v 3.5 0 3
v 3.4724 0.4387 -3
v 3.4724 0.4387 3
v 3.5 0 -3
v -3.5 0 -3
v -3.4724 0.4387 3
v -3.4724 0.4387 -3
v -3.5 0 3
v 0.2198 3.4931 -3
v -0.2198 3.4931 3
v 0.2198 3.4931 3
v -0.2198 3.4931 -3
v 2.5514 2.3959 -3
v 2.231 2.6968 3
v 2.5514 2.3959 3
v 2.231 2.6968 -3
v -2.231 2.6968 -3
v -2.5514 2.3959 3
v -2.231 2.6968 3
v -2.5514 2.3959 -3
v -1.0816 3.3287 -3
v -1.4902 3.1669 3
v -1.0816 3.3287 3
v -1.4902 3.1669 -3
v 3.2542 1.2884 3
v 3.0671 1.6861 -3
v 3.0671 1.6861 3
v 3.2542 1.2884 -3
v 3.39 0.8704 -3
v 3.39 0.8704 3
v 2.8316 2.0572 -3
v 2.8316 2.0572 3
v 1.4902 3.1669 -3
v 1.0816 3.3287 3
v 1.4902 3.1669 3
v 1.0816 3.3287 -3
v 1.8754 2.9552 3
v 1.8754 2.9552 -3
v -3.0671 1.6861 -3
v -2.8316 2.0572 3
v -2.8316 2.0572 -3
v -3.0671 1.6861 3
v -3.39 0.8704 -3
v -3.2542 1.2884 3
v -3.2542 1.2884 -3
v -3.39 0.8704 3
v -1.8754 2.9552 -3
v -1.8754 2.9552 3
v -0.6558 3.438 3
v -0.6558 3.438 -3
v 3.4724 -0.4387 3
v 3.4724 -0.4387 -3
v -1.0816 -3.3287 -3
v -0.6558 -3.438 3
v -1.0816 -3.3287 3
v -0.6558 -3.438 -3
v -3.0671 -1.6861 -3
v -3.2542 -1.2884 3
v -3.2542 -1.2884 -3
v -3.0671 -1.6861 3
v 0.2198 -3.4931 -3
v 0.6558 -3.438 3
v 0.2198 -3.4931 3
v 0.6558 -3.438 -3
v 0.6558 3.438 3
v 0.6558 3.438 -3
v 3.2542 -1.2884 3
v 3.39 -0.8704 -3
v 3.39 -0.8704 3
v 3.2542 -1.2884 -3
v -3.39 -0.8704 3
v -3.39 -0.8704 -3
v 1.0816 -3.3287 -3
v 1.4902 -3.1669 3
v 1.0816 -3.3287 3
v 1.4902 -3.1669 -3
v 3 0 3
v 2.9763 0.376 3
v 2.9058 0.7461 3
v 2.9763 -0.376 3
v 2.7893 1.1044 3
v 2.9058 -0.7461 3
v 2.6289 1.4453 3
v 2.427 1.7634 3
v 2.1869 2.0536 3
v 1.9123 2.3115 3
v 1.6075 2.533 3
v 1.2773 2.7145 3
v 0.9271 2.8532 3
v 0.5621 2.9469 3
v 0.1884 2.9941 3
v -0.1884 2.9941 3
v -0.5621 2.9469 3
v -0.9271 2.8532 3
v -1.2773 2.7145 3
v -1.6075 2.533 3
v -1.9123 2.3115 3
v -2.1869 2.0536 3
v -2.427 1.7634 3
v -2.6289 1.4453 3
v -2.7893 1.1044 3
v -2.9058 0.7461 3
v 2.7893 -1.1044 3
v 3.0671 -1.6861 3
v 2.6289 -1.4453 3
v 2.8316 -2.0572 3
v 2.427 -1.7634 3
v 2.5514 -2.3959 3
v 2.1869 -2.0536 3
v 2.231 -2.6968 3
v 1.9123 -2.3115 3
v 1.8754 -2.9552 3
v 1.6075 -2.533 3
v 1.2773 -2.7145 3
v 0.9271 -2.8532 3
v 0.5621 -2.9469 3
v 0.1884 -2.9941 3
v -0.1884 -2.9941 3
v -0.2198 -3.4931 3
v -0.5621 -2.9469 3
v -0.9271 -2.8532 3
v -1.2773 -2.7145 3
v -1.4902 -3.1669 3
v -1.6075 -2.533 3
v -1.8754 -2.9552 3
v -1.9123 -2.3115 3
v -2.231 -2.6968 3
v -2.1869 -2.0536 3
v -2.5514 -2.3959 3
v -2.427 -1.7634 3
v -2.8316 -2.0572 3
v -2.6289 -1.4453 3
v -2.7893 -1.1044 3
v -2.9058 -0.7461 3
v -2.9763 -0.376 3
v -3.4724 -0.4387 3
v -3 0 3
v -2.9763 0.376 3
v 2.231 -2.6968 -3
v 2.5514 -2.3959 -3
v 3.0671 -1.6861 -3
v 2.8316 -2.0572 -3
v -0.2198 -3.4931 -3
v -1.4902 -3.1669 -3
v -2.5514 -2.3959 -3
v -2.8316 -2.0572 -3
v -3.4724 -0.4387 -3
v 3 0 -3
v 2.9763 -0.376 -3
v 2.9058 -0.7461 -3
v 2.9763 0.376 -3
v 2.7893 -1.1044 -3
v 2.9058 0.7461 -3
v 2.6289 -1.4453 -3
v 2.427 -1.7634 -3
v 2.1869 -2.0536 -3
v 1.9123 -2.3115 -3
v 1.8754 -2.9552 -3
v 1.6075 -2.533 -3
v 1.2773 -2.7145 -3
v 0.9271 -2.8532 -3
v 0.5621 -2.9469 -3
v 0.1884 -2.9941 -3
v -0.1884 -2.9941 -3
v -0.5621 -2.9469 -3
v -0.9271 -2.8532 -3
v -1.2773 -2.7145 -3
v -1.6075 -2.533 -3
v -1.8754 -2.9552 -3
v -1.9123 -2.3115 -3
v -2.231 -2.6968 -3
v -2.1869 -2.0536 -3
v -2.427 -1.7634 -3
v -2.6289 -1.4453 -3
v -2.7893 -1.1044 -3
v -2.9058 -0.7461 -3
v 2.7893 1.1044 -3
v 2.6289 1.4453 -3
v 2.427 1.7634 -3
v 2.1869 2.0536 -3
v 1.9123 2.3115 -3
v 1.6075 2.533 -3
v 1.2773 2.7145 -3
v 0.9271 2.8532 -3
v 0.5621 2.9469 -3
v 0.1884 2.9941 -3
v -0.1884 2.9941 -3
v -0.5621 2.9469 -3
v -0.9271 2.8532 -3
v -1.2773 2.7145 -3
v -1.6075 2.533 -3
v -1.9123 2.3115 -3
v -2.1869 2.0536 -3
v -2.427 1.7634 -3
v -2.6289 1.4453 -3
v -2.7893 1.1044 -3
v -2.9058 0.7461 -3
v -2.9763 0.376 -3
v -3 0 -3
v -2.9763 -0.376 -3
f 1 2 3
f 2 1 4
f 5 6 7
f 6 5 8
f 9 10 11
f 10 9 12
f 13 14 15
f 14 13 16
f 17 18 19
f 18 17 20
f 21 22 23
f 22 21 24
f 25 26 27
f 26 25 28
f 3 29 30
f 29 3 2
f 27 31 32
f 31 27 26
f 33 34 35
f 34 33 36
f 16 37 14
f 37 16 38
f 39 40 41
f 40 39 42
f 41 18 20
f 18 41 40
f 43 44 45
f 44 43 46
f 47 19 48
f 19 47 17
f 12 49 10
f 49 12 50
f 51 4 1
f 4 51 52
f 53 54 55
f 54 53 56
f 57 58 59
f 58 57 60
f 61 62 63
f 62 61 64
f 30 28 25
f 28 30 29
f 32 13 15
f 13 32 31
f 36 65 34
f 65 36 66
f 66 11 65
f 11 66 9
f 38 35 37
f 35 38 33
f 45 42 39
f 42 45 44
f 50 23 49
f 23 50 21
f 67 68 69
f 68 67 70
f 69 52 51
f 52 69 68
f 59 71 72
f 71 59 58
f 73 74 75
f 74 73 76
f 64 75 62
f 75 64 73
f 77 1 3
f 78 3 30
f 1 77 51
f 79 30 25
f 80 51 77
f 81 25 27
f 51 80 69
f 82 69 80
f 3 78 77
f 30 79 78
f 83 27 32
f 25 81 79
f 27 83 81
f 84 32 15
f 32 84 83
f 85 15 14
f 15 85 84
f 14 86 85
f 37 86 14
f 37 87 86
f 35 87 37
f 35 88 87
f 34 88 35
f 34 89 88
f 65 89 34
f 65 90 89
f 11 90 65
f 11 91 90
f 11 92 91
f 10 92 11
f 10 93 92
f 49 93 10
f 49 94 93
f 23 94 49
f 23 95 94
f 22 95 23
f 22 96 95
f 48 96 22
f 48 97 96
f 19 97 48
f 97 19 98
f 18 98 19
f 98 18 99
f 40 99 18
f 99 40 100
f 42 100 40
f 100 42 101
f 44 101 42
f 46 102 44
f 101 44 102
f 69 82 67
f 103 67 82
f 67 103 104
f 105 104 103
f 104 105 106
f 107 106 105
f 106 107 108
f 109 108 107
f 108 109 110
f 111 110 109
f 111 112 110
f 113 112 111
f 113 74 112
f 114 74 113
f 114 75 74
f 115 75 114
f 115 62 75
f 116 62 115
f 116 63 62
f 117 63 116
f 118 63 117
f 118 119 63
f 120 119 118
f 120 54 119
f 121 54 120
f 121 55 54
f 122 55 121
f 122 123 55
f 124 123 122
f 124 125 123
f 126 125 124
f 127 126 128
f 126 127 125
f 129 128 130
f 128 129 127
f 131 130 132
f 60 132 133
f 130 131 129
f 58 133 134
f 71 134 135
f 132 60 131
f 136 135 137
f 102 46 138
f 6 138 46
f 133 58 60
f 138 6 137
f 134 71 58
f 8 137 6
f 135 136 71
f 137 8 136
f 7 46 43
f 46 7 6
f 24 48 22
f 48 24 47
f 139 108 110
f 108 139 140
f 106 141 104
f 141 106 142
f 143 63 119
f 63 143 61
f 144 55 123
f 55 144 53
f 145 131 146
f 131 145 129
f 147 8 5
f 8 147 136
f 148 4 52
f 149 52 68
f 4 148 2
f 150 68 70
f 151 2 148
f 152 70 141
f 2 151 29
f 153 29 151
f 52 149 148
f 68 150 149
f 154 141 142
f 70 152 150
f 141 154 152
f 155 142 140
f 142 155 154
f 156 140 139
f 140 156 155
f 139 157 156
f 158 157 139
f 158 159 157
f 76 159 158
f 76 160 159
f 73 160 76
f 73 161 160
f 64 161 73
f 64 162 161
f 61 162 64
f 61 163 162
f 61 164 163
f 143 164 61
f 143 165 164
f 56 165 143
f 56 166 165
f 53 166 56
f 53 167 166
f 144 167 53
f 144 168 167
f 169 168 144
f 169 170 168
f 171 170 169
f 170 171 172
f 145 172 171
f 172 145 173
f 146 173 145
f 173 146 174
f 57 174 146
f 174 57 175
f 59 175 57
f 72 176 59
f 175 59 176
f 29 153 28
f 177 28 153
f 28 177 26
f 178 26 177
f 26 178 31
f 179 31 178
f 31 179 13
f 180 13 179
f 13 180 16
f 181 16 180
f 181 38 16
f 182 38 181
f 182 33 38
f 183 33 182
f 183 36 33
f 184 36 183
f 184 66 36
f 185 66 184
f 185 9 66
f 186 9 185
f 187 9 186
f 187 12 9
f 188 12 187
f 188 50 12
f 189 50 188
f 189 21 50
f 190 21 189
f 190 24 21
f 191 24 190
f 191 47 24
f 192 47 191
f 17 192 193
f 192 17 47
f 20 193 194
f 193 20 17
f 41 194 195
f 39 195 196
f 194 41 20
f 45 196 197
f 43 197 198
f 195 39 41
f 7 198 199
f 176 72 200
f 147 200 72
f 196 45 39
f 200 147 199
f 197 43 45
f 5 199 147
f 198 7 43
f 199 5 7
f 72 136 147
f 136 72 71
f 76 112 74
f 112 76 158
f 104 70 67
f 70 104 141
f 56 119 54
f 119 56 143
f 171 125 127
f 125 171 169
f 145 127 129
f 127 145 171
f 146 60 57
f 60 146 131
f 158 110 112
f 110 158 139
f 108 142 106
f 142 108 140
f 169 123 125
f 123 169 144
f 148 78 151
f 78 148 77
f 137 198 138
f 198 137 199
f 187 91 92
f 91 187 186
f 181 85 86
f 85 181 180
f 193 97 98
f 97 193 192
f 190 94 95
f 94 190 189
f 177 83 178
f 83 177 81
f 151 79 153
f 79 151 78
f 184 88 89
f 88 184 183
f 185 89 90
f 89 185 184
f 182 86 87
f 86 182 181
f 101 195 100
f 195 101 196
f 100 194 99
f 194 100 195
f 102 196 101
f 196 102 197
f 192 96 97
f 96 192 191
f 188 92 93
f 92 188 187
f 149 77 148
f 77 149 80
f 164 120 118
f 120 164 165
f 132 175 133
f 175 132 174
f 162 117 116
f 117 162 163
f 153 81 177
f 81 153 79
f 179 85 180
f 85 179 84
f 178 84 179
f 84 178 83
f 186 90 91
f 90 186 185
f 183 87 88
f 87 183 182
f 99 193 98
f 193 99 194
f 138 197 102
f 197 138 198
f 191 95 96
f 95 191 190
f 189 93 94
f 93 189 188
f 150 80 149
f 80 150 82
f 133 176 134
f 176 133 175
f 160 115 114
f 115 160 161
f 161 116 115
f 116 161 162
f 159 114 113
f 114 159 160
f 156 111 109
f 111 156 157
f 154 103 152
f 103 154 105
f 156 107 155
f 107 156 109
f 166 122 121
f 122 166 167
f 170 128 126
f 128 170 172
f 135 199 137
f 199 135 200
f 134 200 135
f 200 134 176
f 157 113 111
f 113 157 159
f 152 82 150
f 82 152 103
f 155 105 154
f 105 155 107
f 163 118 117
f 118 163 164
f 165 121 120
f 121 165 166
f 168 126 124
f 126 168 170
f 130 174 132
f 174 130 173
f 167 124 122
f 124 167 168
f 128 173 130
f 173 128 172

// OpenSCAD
$fn = 50;


difference() {
	union() {
		translate(v = [0, 0, -3.0000000000]) {
			cylinder(h = 6, r = 3.5000000000);
		}
	}
	union() {
		translate(v = [0, 0, -100.0000000000]) {
			cylinder(h = 200, r = 3.0000000000);
		}
	}
}
